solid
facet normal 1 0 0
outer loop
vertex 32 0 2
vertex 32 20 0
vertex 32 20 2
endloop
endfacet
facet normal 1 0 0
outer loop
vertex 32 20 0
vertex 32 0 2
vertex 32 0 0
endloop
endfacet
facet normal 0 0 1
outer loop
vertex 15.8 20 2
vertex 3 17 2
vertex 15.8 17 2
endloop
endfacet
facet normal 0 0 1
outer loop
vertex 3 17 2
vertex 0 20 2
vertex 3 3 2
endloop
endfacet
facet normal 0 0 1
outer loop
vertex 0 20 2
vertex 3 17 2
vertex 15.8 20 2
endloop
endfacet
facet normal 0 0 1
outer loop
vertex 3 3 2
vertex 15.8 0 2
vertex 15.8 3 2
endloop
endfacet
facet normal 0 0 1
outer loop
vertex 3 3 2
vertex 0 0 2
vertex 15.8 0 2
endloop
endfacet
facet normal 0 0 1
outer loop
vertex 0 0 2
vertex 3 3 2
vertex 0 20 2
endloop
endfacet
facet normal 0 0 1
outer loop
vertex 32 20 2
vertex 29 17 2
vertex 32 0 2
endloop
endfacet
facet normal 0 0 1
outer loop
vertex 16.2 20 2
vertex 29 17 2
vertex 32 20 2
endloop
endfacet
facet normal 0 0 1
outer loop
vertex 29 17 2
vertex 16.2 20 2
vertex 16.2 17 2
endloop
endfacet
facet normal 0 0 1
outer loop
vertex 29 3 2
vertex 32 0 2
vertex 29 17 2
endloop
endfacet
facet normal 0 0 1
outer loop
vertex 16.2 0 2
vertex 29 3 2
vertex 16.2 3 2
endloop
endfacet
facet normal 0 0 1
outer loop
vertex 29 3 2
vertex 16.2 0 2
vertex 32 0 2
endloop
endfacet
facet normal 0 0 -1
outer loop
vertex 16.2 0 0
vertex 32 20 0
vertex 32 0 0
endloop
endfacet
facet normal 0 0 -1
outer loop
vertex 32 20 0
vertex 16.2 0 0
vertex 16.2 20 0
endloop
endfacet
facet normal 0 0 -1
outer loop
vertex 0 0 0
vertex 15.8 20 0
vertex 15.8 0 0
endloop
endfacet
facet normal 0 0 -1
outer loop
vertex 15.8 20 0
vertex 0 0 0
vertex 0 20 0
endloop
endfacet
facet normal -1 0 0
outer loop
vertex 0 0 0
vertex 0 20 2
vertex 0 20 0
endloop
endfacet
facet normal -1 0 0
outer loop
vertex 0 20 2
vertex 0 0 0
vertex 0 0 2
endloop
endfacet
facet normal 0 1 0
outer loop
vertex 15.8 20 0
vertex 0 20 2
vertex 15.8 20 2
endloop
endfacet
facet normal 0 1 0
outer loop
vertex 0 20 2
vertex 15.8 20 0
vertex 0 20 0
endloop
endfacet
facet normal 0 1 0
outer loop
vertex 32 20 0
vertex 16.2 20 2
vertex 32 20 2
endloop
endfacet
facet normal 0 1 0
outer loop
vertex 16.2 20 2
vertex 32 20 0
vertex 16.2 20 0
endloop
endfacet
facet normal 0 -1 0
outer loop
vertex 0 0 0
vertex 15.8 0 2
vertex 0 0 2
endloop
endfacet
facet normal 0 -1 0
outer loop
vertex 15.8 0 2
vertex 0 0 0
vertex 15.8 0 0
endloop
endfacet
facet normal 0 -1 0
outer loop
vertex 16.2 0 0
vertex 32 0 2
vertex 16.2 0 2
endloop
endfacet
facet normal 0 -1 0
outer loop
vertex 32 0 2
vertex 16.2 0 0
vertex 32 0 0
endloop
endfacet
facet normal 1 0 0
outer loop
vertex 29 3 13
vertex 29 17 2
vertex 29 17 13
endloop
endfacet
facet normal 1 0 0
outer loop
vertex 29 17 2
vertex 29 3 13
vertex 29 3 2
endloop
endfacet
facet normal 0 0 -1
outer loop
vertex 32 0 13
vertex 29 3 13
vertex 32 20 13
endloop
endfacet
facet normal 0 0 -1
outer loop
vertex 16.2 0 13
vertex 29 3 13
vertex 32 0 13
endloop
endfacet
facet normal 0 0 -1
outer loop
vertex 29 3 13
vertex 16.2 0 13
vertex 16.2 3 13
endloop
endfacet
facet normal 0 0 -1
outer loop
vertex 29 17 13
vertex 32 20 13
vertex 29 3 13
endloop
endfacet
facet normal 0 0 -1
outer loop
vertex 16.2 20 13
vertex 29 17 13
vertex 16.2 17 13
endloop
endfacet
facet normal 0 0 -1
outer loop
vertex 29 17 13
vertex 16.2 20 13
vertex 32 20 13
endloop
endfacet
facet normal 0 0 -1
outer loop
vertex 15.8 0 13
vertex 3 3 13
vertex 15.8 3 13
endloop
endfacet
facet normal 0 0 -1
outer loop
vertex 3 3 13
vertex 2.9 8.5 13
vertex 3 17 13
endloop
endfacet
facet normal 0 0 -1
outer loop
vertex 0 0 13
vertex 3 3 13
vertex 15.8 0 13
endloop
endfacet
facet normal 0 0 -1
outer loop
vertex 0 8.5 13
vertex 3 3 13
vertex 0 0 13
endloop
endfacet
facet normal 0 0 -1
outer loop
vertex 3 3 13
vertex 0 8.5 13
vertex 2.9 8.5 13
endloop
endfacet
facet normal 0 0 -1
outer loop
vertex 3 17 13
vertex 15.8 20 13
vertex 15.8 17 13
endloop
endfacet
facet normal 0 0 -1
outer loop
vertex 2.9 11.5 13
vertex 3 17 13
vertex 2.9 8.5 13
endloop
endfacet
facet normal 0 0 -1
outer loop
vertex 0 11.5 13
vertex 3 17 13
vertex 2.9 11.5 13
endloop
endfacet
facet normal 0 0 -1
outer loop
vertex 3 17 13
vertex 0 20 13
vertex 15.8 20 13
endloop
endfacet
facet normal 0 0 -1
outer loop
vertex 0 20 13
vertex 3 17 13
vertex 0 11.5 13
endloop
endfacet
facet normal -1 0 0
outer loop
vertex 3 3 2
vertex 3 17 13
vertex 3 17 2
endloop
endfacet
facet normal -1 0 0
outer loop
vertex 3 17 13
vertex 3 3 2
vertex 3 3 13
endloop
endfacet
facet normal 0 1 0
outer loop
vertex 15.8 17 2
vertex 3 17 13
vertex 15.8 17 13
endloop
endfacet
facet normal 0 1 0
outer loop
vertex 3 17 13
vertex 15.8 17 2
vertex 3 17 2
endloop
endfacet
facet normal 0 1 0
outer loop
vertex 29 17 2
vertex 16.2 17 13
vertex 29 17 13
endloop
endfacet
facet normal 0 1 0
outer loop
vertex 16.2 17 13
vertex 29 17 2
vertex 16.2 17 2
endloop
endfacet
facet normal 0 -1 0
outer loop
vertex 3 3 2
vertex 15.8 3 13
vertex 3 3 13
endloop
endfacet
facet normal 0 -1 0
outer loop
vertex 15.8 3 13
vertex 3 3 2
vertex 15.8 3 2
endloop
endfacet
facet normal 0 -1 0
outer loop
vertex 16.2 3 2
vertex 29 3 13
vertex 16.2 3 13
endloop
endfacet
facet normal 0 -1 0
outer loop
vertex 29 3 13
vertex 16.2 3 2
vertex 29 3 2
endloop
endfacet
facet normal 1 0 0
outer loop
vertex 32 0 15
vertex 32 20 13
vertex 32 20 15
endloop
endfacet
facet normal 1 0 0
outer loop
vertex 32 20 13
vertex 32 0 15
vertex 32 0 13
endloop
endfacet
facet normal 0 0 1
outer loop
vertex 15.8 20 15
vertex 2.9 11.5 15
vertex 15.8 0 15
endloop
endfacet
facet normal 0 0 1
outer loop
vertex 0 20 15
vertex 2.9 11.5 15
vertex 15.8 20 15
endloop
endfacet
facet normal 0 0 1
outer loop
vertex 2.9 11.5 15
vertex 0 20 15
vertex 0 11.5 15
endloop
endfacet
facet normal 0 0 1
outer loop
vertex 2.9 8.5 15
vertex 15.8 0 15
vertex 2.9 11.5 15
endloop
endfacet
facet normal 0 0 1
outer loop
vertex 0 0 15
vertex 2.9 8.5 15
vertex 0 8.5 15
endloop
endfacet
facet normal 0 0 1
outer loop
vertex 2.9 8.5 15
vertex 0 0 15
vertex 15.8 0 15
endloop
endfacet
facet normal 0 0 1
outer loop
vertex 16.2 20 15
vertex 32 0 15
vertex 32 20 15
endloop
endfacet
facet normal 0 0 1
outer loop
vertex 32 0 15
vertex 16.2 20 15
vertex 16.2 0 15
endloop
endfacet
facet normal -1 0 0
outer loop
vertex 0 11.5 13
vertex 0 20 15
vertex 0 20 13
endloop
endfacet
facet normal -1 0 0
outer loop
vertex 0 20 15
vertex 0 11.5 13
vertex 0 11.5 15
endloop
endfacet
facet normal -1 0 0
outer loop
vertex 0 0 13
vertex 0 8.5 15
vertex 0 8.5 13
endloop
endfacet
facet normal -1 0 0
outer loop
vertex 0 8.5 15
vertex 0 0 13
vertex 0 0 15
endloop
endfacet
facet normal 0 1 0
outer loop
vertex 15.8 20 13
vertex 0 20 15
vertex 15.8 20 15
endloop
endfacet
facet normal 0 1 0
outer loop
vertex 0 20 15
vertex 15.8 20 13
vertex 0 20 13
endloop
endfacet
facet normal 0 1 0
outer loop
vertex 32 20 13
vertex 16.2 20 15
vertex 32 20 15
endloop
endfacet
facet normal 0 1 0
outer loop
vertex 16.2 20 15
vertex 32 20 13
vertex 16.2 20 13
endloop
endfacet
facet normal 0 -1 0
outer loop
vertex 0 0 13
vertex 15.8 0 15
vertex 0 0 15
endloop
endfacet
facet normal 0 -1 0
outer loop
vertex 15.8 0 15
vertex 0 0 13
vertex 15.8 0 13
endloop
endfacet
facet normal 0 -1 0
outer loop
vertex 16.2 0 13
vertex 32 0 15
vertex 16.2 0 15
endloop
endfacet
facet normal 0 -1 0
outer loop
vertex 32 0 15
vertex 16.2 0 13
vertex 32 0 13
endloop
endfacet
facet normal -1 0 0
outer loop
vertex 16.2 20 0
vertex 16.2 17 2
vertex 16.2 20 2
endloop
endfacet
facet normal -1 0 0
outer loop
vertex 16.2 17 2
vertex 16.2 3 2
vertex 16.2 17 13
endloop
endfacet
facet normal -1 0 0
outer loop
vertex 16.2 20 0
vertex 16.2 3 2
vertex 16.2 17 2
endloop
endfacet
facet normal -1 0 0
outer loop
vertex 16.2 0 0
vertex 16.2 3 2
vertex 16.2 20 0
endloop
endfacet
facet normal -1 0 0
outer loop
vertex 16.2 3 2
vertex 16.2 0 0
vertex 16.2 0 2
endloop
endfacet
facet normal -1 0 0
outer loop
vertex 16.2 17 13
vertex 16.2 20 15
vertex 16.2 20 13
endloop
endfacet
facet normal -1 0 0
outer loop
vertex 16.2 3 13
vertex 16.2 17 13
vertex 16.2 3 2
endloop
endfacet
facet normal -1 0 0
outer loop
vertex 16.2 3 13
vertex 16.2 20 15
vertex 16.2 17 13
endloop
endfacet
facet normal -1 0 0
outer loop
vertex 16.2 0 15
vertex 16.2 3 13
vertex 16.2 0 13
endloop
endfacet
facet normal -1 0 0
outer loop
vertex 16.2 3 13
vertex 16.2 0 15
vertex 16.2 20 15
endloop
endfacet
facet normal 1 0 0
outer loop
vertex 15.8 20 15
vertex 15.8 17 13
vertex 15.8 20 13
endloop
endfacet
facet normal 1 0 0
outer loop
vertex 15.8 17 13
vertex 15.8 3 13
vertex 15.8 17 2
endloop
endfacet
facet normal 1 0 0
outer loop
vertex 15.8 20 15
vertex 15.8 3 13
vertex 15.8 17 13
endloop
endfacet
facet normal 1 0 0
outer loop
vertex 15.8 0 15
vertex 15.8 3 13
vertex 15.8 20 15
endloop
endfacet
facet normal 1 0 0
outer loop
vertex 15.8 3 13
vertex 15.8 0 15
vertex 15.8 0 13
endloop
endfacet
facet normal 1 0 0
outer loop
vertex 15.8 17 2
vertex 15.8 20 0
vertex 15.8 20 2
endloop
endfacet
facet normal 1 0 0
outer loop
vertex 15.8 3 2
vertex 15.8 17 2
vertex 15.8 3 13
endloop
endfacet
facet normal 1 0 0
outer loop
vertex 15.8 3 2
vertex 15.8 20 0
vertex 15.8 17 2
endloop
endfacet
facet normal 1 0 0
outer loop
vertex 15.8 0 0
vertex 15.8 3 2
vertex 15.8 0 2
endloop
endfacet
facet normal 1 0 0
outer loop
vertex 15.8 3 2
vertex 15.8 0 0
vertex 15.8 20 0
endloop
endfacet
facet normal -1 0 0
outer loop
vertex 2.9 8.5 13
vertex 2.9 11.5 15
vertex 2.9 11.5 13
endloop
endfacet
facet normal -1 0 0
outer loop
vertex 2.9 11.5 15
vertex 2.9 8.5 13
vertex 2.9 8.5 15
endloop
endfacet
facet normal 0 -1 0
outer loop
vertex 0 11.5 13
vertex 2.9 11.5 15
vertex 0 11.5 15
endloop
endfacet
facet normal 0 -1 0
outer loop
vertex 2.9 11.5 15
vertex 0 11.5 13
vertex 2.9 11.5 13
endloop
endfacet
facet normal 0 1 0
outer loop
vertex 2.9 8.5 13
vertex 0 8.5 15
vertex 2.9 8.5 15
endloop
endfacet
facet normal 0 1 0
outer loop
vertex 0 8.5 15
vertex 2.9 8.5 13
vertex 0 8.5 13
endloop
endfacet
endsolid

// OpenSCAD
// file: parameters.scad
// AFPM-Desk-v2 shared parameters (mm)
// Dual-rotor axial-flux PM learning generator with steel back-iron.
// Faraday induction education only — not free-energy / overunity.
// Target printer: Anycubic Kobra 3 Max, 0.4 mm nozzle, 0.2 mm layers, PLA/PETG.

$fn = 72;

// --- Printer / FDM assumptions ---
nozzle = 0.4;
layer = 0.2;
wall = 1.6;                 // load-bearing walls ~4 perimeters
housing_wall = 2.4;
clearance_slip = 0.35;      // shaft slip fit
clearance_loose = 0.55;
press_interference = 0.15;  // bearing pocket undersize total (coupon-test)
magnet_pocket_xy = 0.25;    // +0.25 mm on diameter
magnet_pocket_z = 0.15;     // +0.15 mm depth
elephant_foot = 0.5;

// --- Magnets (N42 Neo discs) ---
magnet_d = 20;
magnet_h = 3;
magnet_count = 8;           // per rotor (8+8 total)
magnet_pcd = 70;

// --- Steel back-iron (purchased mild steel disc) ---
steel_od = 100;
steel_id = 14;              // clearance around hub boss
steel_h = 1.5;              // 1.5–2.0 mm mild steel OK
steel_recess_clearance = 0.3;

// --- Rotor printed disc ---
rotor_od = 110;
rotor_hub_bore = 12;        // seats on shaft_hub boss
rotor_thickness = 7;        // magnet pocket from face; steel recess on back
magnet_pocket_depth = magnet_h + magnet_pocket_z;
steel_recess_depth = steel_h + 0.2;

// --- Stator (coreless, between rotors) ---
stator_od = 120;
stator_id = 28;
stator_thickness = 10;
coil_count = 6;
coil_slot_w = 24;
coil_slot_l = 30;           // radial length of pocket
coil_slot_depth = 8;
coil_pcd = 70;
stator_pillar_pcd = 100;    // M4 pillar holes

// --- Coil former / bobbin ---
former_core_w = 14;
former_core_l = 26;
former_flange = 3;
former_wind_h = 11;
former_bore = 0;            // solid core, split design via kerf

// --- Shaft / bearings ---
shaft_d = 8;
bearing_od = 22;            // 608-2RS
bearing_id = 8;
bearing_h = 7;
bearing_seat_od = bearing_od - press_interference; // coupon-test; start ~21.85

// --- Base / frame ---
base_w = 180;
base_d = 160;
base_h = 8;
post_h = 70;
post_spacing = 120;         // Y distance between bearing post centers
post_d = 36;

// --- Axial stack targets (along shaft / Y) ---
// crank | brg | hub+rotorA+steel | air | stator | air | steel+rotorB+hub | brg
air_gap_nominal = 2.0;      // mechanical per side magnet↔coil face

// --- Crank ---
crank_arm_len = 85;
crank_arm_w = 18;
crank_arm_t = 10;
handle_d = 14;
handle_len = 45;

// --- Electronics tray ---
tray_w = 75;
tray_d = 55;
tray_h = 14;

// --- Fasteners ---
m3_clear = 3.4;
m3_tap = 2.5;
m4_clear = 4.3;
// main file
include <parameters.scad>
// Split bobbin for ~200 turns 28 AWG. Kerf allows removal after winding.

kerf = 0.4;

module coil_former() {
  difference() {
    union() {
      // bottom flange
      translate([0,0,0])
        cube([former_core_l + 2*former_flange, former_core_w + 2*former_flange, 2], center=false);
      // core
      translate([former_flange, former_flange, 2])
        cube([former_core_l, former_core_w, former_wind_h]);
      // top flange
      translate([0,0,2+former_wind_h])
        cube([former_core_l + 2*former_flange, former_core_w + 2*former_flange, 2], center=false);
    }
    // split kerf through middle (lengthwise)
    translate([(former_core_l + 2*former_flange)/2 - kerf/2, -0.1, -0.1])
      cube([kerf, former_core_w + 2*former_flange + 0.2, former_wind_h + 4.2]);
    // lead notch
    translate([-0.1, (former_core_w + 2*former_flange)/2 - 1.5, 2+former_wind_h])
      cube([3, 3, 2.2]);
  }
}

coil_former();
